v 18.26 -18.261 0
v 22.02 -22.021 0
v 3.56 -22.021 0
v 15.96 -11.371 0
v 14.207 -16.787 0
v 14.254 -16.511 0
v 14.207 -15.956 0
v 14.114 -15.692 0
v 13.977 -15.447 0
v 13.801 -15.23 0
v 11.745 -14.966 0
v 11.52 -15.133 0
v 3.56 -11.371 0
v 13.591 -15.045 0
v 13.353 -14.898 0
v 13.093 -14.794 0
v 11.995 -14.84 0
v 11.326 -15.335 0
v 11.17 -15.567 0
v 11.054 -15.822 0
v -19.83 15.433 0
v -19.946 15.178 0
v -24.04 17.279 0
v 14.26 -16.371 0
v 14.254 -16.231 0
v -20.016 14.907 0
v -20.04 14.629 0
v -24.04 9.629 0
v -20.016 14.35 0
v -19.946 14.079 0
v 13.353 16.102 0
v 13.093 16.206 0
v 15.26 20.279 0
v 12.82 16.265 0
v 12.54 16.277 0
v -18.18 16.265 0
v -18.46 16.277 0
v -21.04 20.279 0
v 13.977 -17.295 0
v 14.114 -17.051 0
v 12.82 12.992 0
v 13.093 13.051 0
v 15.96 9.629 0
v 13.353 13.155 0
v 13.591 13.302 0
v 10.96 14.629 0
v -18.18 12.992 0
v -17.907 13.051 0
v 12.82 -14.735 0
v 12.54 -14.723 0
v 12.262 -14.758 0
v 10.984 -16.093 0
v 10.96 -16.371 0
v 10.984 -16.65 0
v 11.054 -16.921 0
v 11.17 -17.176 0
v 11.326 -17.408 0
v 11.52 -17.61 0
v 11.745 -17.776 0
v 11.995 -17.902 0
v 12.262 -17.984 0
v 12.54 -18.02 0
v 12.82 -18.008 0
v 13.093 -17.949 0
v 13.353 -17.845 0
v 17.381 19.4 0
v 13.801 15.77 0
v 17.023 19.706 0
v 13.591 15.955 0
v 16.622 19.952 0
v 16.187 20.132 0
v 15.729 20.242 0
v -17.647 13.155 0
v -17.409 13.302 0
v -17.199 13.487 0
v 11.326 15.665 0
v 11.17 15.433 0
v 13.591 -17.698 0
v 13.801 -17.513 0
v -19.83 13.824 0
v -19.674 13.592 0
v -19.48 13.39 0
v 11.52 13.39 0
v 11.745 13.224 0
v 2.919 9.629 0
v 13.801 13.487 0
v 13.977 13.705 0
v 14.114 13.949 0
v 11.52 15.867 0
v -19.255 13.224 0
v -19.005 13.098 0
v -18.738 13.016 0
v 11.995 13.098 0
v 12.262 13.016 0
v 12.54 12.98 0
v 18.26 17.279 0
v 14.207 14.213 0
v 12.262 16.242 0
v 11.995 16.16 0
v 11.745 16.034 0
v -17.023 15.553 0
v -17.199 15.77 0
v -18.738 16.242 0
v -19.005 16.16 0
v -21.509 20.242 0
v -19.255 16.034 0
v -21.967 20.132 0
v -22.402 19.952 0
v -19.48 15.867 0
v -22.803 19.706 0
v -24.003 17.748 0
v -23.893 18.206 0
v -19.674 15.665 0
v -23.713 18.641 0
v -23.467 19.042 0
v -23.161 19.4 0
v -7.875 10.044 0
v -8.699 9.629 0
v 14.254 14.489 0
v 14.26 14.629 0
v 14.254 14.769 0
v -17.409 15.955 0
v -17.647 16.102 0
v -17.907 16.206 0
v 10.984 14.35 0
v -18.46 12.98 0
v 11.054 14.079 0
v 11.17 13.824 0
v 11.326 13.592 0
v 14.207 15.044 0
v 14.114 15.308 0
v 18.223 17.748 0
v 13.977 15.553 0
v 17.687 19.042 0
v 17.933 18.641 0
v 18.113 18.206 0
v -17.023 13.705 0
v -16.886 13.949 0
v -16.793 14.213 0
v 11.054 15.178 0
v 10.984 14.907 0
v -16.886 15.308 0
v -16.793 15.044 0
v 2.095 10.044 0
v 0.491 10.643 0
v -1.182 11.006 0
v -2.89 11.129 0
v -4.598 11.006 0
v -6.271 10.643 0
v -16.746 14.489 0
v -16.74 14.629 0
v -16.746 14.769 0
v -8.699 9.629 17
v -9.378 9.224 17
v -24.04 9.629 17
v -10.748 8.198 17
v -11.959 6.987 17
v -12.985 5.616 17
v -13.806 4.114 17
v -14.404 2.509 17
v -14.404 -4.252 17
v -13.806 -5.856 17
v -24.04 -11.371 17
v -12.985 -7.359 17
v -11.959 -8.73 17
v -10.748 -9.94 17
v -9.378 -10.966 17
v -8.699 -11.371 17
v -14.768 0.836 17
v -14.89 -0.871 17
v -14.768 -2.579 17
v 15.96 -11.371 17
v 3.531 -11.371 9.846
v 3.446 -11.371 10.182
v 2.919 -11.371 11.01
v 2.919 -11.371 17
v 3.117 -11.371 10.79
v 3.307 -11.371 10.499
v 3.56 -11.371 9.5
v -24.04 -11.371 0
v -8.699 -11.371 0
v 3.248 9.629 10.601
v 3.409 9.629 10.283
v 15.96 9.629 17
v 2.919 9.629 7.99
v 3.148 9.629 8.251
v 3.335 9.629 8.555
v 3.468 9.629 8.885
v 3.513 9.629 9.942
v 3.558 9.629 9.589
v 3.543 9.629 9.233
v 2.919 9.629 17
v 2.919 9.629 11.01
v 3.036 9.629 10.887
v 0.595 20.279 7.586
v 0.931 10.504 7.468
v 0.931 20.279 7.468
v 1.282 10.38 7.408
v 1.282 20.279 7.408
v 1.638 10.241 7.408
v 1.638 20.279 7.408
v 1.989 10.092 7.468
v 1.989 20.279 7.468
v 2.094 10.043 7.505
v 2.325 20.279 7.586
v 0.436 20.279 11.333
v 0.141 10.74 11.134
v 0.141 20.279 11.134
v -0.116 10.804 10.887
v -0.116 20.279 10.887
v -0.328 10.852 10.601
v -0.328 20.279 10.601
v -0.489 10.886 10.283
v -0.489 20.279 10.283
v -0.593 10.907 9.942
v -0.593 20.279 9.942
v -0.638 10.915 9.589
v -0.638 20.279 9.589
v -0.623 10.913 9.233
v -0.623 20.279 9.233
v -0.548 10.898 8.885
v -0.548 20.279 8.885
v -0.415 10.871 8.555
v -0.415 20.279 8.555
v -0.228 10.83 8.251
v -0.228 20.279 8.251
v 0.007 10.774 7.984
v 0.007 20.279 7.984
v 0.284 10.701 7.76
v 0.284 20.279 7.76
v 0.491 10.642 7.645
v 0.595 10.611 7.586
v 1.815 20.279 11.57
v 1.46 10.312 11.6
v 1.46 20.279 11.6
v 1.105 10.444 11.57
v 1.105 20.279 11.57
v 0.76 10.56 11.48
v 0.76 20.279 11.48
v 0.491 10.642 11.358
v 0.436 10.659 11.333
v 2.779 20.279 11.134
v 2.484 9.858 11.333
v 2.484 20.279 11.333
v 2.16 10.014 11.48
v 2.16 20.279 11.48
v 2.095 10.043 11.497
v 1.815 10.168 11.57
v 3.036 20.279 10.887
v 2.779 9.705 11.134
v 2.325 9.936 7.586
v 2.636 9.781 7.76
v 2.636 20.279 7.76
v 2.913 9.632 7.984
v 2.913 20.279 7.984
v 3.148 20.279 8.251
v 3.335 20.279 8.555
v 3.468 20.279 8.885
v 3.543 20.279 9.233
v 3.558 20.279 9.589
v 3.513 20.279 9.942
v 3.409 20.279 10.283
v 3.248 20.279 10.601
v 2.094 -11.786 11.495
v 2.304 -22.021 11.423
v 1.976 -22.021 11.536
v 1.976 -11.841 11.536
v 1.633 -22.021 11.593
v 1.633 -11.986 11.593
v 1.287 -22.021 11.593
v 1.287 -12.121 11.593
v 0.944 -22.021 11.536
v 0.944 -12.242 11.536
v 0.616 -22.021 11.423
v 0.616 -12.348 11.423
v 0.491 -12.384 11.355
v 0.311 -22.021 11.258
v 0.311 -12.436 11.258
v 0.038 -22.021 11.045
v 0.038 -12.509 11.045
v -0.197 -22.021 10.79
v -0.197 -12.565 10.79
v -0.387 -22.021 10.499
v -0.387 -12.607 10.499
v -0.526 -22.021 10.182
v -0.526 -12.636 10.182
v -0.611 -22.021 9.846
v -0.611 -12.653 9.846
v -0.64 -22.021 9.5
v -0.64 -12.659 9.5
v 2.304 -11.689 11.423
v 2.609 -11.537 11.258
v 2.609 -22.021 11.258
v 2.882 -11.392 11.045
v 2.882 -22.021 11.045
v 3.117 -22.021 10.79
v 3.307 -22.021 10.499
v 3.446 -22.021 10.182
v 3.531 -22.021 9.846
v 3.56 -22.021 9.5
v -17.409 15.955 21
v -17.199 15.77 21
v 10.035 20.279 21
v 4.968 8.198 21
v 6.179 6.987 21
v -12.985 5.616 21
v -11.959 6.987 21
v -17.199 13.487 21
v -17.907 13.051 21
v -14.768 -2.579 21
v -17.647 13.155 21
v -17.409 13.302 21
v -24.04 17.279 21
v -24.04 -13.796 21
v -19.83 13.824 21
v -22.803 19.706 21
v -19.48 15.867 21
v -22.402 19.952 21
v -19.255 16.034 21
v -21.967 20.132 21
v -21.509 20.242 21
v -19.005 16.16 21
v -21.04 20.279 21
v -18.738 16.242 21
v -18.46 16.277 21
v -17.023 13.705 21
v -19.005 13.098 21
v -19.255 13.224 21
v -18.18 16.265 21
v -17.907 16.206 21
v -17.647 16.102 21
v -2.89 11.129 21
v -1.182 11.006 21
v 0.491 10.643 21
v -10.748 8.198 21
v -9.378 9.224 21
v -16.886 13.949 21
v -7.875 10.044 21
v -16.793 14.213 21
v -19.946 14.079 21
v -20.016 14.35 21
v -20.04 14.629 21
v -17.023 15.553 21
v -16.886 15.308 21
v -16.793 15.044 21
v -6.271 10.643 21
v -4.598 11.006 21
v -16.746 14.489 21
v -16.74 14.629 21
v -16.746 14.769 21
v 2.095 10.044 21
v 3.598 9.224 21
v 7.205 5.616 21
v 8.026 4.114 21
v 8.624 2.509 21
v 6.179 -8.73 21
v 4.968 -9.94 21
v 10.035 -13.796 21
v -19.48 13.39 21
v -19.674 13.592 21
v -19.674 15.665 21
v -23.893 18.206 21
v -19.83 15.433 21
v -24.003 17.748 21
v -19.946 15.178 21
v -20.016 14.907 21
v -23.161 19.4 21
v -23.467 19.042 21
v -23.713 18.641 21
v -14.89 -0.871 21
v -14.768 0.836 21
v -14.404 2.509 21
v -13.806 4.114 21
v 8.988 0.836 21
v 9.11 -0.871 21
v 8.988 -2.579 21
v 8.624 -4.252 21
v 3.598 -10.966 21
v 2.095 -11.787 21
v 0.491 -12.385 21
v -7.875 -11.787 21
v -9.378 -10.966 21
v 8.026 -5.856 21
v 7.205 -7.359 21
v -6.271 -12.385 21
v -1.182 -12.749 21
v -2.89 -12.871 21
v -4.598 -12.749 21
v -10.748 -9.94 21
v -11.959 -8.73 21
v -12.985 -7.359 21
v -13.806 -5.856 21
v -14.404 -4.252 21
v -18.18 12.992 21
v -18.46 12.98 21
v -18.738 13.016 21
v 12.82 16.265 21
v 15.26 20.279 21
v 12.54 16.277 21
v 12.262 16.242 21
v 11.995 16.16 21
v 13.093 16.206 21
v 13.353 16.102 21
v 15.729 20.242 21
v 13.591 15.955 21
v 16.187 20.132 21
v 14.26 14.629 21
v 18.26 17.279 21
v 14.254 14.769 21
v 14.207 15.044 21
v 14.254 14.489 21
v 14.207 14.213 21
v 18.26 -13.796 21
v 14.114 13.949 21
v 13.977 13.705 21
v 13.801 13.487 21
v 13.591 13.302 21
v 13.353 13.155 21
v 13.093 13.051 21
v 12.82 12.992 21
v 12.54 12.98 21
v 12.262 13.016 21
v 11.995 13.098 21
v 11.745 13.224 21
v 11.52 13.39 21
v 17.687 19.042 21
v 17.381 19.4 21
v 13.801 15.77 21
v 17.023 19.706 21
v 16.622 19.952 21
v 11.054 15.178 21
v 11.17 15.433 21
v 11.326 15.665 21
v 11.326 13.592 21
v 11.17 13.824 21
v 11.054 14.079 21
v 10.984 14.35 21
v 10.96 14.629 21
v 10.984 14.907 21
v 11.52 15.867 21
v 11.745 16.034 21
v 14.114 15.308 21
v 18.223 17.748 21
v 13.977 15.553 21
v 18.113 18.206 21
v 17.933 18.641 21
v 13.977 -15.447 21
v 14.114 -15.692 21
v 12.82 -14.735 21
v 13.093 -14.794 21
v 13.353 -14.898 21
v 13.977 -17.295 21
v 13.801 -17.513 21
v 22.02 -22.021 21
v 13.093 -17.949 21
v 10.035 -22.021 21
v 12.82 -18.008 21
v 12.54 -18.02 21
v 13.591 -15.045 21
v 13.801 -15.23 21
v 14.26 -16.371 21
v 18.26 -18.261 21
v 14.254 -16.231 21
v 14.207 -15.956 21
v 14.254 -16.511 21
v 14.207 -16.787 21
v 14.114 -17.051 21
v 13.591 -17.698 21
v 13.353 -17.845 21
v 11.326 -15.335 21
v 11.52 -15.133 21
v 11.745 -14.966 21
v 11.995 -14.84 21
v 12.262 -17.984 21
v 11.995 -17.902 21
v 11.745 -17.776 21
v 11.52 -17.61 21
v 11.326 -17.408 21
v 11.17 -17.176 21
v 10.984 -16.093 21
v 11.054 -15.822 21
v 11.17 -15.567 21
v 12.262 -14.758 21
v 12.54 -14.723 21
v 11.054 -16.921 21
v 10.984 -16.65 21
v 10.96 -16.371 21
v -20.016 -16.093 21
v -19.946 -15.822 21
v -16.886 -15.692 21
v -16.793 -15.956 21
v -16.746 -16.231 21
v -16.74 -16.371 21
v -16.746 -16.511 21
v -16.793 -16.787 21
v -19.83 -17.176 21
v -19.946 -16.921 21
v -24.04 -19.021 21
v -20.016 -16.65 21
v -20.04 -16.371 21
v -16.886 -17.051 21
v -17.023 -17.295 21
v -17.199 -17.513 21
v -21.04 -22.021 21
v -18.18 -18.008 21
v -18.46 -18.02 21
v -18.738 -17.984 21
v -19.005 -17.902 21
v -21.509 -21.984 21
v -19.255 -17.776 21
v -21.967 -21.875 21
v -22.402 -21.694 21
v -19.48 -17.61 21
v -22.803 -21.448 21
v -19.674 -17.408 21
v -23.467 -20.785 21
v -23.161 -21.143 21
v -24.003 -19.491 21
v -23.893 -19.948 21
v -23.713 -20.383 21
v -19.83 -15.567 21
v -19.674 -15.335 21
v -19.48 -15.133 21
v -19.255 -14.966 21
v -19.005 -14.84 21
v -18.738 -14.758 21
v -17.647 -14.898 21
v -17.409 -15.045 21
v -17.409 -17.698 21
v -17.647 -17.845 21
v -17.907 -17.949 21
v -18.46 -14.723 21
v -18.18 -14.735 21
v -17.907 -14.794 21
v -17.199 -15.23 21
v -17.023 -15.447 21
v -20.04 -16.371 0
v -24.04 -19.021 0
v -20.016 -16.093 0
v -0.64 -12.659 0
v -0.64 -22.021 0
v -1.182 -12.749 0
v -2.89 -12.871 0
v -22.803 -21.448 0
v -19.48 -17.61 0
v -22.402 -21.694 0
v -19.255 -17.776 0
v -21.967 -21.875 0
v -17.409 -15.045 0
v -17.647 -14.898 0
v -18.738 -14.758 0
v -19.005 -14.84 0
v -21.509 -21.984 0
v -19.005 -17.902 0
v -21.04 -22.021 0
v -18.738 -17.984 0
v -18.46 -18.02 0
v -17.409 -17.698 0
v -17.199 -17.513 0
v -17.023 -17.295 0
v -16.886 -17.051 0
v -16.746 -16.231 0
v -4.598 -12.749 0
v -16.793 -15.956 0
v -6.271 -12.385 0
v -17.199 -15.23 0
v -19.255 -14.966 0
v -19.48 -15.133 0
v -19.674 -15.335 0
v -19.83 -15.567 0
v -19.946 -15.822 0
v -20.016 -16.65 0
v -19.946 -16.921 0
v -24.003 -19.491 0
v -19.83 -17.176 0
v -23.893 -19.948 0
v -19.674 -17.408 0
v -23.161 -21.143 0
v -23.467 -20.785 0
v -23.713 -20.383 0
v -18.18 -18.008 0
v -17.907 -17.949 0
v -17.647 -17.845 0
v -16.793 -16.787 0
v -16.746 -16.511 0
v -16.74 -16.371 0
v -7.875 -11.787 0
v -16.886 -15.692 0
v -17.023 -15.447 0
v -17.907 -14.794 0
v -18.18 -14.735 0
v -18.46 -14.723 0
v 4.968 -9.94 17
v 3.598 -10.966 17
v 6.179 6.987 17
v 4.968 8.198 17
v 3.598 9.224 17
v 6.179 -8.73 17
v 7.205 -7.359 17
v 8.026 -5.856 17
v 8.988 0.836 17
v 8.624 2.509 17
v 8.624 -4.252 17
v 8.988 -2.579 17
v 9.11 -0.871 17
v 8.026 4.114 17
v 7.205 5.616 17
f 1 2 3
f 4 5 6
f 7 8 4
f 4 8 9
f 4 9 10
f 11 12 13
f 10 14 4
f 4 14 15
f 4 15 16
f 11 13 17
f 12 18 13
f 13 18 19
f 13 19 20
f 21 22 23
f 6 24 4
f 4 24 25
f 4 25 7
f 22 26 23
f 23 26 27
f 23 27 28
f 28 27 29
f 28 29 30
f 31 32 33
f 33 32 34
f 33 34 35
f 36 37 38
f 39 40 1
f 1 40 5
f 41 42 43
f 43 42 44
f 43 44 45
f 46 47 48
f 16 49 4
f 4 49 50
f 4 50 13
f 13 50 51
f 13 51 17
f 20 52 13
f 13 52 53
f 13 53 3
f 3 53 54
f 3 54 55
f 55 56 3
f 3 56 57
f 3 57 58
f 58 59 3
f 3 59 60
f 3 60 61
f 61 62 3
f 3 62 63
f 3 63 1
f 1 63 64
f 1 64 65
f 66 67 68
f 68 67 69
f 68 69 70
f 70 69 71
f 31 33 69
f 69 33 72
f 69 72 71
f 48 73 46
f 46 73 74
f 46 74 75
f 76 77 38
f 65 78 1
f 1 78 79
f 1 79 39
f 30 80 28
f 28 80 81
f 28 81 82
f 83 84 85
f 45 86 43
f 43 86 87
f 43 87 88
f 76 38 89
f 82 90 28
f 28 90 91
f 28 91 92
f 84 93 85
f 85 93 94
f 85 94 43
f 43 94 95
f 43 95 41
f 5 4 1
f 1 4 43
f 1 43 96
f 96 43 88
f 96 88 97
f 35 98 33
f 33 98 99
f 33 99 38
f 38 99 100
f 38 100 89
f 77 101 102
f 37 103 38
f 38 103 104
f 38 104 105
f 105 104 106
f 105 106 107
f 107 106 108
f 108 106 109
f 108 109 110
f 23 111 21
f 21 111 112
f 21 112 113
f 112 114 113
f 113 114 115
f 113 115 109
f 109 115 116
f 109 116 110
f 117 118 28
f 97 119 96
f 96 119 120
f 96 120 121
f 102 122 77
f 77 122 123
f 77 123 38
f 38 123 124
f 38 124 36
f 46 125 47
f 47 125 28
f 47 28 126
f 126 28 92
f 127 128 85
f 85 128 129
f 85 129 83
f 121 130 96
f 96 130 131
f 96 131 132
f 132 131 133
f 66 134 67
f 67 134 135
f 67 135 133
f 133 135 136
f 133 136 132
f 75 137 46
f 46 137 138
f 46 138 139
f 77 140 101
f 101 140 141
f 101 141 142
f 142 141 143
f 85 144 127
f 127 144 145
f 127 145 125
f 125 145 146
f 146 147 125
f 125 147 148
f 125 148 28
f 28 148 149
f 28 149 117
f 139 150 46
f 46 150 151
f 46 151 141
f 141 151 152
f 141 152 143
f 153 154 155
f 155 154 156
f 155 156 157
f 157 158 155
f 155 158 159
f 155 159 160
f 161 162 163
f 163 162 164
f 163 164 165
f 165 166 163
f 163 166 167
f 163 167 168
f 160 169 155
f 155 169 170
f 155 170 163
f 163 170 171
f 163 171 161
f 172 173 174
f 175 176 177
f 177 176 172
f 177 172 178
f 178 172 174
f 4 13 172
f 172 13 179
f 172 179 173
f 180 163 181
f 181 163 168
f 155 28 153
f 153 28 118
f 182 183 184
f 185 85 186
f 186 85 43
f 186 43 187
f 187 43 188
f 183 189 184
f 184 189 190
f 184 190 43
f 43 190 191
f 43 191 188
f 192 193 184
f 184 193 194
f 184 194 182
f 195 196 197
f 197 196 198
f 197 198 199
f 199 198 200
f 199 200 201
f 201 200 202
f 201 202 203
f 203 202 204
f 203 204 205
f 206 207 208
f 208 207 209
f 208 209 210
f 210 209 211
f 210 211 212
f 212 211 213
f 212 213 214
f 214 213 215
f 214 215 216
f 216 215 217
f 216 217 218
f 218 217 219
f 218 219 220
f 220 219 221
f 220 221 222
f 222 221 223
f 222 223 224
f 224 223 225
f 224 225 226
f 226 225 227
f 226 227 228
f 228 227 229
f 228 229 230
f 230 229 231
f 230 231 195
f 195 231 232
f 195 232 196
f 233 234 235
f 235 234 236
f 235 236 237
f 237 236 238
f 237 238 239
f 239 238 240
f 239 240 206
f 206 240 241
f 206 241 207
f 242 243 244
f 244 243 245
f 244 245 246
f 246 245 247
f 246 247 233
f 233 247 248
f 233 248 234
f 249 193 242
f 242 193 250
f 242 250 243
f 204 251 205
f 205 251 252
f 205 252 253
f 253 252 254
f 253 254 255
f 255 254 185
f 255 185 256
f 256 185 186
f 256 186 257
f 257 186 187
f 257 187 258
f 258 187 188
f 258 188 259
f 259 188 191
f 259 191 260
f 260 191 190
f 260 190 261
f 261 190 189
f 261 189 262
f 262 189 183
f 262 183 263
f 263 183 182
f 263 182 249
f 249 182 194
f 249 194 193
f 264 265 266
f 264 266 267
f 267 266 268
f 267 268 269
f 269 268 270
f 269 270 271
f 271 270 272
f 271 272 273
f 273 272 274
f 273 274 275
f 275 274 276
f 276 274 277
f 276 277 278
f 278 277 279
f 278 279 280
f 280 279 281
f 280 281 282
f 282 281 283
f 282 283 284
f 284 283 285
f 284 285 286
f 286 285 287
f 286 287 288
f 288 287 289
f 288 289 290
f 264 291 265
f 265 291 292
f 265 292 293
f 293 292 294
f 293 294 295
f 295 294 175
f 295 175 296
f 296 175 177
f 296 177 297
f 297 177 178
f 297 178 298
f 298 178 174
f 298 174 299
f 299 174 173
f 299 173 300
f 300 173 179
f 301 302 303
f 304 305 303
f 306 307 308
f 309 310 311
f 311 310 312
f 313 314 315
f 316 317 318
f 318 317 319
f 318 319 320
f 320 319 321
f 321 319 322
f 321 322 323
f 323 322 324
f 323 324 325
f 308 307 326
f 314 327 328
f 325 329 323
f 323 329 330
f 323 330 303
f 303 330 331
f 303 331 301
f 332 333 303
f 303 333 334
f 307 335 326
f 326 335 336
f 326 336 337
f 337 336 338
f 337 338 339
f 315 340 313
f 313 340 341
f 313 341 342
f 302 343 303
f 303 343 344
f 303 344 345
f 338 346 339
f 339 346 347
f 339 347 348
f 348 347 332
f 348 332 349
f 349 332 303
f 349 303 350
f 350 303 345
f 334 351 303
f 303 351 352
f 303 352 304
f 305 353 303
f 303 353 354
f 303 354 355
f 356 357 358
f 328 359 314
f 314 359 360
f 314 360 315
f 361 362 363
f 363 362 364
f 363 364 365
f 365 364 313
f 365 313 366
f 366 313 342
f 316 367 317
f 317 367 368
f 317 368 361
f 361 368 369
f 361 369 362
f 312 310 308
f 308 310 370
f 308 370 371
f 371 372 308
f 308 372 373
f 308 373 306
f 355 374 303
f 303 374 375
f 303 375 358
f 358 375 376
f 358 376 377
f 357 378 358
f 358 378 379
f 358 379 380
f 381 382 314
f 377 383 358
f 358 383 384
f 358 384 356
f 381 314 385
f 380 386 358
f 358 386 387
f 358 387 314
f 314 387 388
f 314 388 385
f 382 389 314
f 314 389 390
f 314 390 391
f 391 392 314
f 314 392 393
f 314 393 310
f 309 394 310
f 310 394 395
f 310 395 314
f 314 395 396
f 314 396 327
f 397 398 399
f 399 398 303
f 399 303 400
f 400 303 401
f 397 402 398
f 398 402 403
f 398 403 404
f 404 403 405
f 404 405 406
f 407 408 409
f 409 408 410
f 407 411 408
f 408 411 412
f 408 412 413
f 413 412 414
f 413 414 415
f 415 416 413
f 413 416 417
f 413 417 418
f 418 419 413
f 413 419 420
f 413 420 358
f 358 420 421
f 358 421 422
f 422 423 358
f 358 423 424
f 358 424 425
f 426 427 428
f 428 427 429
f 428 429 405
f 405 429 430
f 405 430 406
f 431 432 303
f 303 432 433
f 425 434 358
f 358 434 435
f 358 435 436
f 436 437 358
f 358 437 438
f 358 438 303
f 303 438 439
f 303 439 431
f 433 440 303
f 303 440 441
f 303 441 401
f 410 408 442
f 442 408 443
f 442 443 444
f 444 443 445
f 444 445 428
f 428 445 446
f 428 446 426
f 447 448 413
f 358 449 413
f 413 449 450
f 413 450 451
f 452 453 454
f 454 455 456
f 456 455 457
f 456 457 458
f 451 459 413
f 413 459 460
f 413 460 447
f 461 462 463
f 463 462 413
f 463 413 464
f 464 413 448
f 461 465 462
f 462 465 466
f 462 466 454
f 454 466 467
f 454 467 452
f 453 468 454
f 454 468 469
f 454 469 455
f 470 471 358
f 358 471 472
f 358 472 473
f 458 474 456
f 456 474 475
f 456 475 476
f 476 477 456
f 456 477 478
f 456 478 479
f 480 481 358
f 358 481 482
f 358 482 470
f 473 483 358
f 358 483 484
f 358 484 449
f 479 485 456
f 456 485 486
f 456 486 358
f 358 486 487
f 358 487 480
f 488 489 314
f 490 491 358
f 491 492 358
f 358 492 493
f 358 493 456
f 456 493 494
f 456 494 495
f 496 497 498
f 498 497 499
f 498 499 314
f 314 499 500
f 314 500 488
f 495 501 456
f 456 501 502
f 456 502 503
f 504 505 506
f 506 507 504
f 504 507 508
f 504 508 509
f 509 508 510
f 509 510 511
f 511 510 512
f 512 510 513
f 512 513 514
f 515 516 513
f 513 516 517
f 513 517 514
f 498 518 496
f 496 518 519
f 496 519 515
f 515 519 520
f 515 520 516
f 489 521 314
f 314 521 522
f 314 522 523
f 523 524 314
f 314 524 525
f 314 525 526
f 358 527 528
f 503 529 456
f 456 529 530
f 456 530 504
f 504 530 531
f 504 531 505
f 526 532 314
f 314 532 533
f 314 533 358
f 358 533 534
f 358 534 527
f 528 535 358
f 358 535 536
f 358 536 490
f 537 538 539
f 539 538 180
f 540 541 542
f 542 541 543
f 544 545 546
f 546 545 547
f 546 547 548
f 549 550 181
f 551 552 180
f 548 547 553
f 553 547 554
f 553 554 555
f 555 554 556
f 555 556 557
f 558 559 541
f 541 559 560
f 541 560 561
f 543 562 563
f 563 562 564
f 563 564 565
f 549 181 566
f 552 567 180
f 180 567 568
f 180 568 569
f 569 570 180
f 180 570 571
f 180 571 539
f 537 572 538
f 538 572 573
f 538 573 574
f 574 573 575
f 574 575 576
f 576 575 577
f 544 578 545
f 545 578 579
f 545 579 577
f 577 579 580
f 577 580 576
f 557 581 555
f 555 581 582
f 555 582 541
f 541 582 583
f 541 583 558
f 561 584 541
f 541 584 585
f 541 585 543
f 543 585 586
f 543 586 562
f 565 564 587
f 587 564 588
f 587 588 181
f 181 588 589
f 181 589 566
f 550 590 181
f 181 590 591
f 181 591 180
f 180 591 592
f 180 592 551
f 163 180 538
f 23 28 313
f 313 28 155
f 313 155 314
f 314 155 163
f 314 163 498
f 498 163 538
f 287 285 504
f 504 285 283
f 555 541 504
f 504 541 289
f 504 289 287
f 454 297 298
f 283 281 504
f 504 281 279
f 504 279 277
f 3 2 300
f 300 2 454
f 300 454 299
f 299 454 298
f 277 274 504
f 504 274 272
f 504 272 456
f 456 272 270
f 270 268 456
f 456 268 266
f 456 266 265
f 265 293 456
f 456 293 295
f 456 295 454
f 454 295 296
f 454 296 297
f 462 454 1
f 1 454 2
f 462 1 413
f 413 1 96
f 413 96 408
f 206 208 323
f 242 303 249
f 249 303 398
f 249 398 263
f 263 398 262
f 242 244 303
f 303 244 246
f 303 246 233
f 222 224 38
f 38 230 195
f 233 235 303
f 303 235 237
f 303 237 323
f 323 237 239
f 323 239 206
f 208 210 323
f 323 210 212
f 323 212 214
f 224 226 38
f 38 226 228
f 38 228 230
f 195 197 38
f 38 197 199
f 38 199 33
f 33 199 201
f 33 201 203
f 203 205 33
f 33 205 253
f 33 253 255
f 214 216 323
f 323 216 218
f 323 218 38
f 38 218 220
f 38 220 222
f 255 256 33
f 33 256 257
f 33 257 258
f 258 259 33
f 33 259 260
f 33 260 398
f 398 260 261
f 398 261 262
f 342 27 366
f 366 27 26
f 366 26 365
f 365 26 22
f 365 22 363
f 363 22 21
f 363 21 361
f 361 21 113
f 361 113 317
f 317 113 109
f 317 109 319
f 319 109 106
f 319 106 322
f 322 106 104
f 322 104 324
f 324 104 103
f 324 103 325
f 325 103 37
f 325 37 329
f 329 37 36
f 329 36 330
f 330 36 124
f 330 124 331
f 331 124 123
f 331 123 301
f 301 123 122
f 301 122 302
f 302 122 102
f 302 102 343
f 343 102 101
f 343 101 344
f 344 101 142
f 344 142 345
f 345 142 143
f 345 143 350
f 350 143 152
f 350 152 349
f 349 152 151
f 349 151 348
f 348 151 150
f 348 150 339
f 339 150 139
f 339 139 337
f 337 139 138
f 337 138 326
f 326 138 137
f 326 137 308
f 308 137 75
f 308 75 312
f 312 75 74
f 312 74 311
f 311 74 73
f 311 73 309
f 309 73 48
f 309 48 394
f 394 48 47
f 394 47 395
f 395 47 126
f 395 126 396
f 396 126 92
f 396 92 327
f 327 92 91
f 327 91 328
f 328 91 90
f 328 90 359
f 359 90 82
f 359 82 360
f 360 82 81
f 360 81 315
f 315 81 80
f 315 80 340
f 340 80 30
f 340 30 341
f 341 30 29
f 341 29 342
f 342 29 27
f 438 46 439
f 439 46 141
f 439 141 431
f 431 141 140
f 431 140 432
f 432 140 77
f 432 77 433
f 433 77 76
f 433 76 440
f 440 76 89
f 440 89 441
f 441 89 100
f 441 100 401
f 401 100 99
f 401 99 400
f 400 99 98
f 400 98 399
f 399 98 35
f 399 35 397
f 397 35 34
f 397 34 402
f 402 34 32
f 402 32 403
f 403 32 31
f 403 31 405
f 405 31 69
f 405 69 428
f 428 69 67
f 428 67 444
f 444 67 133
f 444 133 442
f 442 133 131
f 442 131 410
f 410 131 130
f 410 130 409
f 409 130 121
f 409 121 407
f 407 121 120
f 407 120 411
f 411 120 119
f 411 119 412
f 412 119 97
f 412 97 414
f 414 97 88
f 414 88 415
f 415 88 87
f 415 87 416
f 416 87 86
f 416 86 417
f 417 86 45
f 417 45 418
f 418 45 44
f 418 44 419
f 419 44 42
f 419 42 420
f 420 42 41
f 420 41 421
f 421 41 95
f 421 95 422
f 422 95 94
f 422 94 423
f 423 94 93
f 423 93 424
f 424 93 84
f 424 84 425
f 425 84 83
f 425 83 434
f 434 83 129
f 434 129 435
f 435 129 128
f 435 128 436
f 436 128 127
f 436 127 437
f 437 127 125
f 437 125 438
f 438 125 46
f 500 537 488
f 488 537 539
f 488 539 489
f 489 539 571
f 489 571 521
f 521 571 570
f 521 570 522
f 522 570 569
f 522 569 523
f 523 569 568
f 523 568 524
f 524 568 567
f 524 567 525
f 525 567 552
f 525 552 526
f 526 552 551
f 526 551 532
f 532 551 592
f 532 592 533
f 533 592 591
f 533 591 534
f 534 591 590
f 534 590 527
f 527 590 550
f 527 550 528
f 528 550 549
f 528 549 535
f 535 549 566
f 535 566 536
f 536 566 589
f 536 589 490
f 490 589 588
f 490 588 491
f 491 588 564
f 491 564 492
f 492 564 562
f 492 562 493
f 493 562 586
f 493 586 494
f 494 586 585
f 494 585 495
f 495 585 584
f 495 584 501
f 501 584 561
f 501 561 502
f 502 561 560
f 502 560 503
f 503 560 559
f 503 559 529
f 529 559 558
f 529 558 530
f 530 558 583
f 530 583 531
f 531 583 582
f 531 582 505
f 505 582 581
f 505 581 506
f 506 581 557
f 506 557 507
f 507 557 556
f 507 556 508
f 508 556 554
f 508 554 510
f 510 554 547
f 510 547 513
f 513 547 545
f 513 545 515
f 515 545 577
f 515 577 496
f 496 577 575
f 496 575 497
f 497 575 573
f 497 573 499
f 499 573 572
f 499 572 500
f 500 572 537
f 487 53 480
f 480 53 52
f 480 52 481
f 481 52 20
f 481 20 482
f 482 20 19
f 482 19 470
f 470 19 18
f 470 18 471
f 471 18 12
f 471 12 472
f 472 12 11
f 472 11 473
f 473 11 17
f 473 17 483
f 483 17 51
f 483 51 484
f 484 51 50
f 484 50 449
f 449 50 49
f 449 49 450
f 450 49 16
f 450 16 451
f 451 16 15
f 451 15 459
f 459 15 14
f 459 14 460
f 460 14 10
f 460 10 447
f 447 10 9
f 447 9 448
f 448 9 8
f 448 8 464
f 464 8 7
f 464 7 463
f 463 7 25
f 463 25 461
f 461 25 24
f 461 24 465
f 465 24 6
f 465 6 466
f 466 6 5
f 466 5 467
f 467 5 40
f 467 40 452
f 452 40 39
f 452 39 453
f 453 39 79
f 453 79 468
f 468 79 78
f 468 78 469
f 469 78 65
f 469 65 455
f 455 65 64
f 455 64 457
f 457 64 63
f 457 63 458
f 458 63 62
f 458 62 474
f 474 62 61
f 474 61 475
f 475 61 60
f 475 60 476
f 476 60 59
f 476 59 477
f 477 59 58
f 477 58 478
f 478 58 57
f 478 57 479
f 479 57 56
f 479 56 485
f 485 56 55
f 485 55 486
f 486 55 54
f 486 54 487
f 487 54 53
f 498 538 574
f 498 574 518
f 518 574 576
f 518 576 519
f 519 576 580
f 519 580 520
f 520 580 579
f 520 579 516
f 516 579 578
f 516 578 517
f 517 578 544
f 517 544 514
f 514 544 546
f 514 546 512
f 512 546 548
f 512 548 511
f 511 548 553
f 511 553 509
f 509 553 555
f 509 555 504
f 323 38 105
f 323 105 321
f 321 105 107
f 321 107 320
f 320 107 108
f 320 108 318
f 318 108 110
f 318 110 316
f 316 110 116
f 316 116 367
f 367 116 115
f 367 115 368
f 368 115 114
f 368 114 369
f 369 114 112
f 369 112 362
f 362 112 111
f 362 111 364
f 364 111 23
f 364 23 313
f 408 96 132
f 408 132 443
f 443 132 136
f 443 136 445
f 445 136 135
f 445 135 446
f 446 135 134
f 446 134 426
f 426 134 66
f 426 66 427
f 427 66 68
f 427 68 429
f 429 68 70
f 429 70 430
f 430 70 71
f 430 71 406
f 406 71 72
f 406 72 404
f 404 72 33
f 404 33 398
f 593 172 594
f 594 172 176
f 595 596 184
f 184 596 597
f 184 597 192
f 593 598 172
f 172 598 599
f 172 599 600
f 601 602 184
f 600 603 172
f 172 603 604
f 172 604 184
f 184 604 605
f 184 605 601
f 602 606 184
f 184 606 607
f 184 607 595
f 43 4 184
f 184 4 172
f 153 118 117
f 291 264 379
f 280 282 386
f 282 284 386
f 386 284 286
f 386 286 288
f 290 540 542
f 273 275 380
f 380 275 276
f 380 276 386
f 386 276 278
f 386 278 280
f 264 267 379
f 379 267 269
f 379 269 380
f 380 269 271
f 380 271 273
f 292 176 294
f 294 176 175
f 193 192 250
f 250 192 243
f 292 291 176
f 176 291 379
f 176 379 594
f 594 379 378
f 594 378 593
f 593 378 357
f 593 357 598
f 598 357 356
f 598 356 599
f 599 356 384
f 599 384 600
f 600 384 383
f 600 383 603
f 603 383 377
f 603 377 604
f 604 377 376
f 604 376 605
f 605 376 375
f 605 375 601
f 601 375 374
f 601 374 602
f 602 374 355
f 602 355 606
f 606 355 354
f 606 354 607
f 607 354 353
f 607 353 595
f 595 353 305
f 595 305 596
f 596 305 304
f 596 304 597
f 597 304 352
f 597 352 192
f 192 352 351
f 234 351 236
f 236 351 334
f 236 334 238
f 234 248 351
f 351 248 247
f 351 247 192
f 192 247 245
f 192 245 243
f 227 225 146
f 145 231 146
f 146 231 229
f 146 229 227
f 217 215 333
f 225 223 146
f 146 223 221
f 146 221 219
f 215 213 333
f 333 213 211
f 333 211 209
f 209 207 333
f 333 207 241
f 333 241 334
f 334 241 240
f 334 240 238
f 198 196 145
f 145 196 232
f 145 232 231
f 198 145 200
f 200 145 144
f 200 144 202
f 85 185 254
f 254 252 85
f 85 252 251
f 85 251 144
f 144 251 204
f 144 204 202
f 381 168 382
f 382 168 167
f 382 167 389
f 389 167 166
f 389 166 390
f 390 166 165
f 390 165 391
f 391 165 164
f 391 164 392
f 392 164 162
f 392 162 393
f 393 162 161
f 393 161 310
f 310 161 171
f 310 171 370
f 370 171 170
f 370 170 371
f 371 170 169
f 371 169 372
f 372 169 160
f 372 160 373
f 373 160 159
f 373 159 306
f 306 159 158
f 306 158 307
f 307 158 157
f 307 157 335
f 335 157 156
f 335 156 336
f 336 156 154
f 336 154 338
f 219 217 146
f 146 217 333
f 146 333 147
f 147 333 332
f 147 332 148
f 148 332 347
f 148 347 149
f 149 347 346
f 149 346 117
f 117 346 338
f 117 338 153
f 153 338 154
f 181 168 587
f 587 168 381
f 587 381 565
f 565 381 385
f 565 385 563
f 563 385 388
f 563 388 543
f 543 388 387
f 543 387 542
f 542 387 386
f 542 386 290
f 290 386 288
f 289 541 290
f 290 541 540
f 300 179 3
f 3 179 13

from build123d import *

# Parameters (mm, degrees)
IZIM1_R                     = 1.65
Y_KSEKLIK_EKSTR_ZYON1_DEPTH = 21
RADYUS1_R                   = 3
IZIM4_W                     = 17
IZIM4_H                     = 21
KES_EKSTR_ZYON3_DEPTH       = 40
IZIM5_R                     = 2.1
KES_EKSTR_ZYON4_DEPTH       = 55
IZIM2_R                     = 12
KES_EKSTR_ZYON1_DEPTH       = 10
KES_EKSTR_ZYON1_DEPTH_BACK  = 23
KES_EKSTR_ZYON5_DEPTH       = 15


with BuildPart() as part:
    # Çizim1 → Yükseklik-Ekstrüzyon1 (new body)
    with BuildSketch(Plane.XY):
        Polygon((-6.954216705, -22.021401373), (-4.12578958, -22.021401373), (7.545783295, -22.021401373), (10.37421042, -22.021401373), (18.259996857, -22.021401373), (22.019996857, -22.021401373), (18.259996857, -18.261401373), (18.259996857, 20.278598627), (-24.040003143, 20.278598627), (-24.040003143, -22.021401373), align=None)
        with Locations((-18.390003143, 14.628598627)):
            Circle(IZIM1_R, mode=Mode.SUBTRACT)
        with Locations((12.609996857, 14.628598627)):
            Circle(IZIM1_R, mode=Mode.SUBTRACT)
        with Locations((-18.390003143, -16.371401373)):
            Circle(IZIM1_R, mode=Mode.SUBTRACT)
        with Locations((12.609996857, -16.371401373)):
            Circle(IZIM1_R, mode=Mode.SUBTRACT)
    extrude(amount=Y_KSEKLIK_EKSTR_ZYON1_DEPTH)

    # Radyus1
    radyus1_edges = [part.edges().sort_by_distance(p)[0] for p in [
        (-24.040003143, 20.278598627, 10.5),
        (18.259996857, 20.278598627, 10.5),
        (-24.040003143, -22.021401373, 10.5),
    ]]
    fillet(radyus1_edges, radius=RADYUS1_R)

    # Çizim4 → Kes-Ekstrüzyon3 (cut)
    with BuildSketch(Plane.ZY.offset(24.040003143)):
        with Locations((8.5, -0.871401373)):
            Rectangle(IZIM4_W, IZIM4_H)
    extrude(amount=-KES_EKSTR_ZYON3_DEPTH, mode=Mode.SUBTRACT)

    # Çizim5 → Kes-Ekstrüzyon4 (cut)
    with BuildSketch(Plane(origin=(0, 20.278598627, 0), x_dir=(1, 0, 0), z_dir=(0, 1, 0))):
        with Locations((1.459996857, -9.5)):
            Circle(IZIM5_R)
    extrude(amount=-KES_EKSTR_ZYON4_DEPTH, mode=Mode.SUBTRACT)

    # Çizim2 → Kes-Ekstrüzyon1 (cut, two sides)
    with BuildSketch(Plane(origin=(0, 0, 0), x_dir=(-1, 0, 0), z_dir=(0, 0, -1))) as kes_ekstr_zyon1_sk:
        with Locations((2.890003143, -0.871401373)):
            Circle(IZIM2_R)
    extrude(amount=KES_EKSTR_ZYON1_DEPTH, mode=Mode.SUBTRACT)
    extrude(kes_ekstr_zyon1_sk.sketch, amount=-KES_EKSTR_ZYON1_DEPTH_BACK, mode=Mode.SUBTRACT)

    # Çizim6 → Kes-Ekstrüzyon5 (cut)
    with BuildSketch(Plane.XZ.offset(22.021401373)):
        with BuildLine():
            Line((-0.640003143, 9.5), (-0.640003143, 0))
            Line((-0.640003143, 0), (3.559996857, 0))
            Line((3.559996857, 0), (3.559996857, 9.5))
            ThreePointArc((3.559996857, 9.5), (1.459996857, 11.6), (-0.640003143, 9.5))
        make_face()
    extrude(amount=-KES_EKSTR_ZYON5_DEPTH, mode=Mode.SUBTRACT)


solid = part.part
